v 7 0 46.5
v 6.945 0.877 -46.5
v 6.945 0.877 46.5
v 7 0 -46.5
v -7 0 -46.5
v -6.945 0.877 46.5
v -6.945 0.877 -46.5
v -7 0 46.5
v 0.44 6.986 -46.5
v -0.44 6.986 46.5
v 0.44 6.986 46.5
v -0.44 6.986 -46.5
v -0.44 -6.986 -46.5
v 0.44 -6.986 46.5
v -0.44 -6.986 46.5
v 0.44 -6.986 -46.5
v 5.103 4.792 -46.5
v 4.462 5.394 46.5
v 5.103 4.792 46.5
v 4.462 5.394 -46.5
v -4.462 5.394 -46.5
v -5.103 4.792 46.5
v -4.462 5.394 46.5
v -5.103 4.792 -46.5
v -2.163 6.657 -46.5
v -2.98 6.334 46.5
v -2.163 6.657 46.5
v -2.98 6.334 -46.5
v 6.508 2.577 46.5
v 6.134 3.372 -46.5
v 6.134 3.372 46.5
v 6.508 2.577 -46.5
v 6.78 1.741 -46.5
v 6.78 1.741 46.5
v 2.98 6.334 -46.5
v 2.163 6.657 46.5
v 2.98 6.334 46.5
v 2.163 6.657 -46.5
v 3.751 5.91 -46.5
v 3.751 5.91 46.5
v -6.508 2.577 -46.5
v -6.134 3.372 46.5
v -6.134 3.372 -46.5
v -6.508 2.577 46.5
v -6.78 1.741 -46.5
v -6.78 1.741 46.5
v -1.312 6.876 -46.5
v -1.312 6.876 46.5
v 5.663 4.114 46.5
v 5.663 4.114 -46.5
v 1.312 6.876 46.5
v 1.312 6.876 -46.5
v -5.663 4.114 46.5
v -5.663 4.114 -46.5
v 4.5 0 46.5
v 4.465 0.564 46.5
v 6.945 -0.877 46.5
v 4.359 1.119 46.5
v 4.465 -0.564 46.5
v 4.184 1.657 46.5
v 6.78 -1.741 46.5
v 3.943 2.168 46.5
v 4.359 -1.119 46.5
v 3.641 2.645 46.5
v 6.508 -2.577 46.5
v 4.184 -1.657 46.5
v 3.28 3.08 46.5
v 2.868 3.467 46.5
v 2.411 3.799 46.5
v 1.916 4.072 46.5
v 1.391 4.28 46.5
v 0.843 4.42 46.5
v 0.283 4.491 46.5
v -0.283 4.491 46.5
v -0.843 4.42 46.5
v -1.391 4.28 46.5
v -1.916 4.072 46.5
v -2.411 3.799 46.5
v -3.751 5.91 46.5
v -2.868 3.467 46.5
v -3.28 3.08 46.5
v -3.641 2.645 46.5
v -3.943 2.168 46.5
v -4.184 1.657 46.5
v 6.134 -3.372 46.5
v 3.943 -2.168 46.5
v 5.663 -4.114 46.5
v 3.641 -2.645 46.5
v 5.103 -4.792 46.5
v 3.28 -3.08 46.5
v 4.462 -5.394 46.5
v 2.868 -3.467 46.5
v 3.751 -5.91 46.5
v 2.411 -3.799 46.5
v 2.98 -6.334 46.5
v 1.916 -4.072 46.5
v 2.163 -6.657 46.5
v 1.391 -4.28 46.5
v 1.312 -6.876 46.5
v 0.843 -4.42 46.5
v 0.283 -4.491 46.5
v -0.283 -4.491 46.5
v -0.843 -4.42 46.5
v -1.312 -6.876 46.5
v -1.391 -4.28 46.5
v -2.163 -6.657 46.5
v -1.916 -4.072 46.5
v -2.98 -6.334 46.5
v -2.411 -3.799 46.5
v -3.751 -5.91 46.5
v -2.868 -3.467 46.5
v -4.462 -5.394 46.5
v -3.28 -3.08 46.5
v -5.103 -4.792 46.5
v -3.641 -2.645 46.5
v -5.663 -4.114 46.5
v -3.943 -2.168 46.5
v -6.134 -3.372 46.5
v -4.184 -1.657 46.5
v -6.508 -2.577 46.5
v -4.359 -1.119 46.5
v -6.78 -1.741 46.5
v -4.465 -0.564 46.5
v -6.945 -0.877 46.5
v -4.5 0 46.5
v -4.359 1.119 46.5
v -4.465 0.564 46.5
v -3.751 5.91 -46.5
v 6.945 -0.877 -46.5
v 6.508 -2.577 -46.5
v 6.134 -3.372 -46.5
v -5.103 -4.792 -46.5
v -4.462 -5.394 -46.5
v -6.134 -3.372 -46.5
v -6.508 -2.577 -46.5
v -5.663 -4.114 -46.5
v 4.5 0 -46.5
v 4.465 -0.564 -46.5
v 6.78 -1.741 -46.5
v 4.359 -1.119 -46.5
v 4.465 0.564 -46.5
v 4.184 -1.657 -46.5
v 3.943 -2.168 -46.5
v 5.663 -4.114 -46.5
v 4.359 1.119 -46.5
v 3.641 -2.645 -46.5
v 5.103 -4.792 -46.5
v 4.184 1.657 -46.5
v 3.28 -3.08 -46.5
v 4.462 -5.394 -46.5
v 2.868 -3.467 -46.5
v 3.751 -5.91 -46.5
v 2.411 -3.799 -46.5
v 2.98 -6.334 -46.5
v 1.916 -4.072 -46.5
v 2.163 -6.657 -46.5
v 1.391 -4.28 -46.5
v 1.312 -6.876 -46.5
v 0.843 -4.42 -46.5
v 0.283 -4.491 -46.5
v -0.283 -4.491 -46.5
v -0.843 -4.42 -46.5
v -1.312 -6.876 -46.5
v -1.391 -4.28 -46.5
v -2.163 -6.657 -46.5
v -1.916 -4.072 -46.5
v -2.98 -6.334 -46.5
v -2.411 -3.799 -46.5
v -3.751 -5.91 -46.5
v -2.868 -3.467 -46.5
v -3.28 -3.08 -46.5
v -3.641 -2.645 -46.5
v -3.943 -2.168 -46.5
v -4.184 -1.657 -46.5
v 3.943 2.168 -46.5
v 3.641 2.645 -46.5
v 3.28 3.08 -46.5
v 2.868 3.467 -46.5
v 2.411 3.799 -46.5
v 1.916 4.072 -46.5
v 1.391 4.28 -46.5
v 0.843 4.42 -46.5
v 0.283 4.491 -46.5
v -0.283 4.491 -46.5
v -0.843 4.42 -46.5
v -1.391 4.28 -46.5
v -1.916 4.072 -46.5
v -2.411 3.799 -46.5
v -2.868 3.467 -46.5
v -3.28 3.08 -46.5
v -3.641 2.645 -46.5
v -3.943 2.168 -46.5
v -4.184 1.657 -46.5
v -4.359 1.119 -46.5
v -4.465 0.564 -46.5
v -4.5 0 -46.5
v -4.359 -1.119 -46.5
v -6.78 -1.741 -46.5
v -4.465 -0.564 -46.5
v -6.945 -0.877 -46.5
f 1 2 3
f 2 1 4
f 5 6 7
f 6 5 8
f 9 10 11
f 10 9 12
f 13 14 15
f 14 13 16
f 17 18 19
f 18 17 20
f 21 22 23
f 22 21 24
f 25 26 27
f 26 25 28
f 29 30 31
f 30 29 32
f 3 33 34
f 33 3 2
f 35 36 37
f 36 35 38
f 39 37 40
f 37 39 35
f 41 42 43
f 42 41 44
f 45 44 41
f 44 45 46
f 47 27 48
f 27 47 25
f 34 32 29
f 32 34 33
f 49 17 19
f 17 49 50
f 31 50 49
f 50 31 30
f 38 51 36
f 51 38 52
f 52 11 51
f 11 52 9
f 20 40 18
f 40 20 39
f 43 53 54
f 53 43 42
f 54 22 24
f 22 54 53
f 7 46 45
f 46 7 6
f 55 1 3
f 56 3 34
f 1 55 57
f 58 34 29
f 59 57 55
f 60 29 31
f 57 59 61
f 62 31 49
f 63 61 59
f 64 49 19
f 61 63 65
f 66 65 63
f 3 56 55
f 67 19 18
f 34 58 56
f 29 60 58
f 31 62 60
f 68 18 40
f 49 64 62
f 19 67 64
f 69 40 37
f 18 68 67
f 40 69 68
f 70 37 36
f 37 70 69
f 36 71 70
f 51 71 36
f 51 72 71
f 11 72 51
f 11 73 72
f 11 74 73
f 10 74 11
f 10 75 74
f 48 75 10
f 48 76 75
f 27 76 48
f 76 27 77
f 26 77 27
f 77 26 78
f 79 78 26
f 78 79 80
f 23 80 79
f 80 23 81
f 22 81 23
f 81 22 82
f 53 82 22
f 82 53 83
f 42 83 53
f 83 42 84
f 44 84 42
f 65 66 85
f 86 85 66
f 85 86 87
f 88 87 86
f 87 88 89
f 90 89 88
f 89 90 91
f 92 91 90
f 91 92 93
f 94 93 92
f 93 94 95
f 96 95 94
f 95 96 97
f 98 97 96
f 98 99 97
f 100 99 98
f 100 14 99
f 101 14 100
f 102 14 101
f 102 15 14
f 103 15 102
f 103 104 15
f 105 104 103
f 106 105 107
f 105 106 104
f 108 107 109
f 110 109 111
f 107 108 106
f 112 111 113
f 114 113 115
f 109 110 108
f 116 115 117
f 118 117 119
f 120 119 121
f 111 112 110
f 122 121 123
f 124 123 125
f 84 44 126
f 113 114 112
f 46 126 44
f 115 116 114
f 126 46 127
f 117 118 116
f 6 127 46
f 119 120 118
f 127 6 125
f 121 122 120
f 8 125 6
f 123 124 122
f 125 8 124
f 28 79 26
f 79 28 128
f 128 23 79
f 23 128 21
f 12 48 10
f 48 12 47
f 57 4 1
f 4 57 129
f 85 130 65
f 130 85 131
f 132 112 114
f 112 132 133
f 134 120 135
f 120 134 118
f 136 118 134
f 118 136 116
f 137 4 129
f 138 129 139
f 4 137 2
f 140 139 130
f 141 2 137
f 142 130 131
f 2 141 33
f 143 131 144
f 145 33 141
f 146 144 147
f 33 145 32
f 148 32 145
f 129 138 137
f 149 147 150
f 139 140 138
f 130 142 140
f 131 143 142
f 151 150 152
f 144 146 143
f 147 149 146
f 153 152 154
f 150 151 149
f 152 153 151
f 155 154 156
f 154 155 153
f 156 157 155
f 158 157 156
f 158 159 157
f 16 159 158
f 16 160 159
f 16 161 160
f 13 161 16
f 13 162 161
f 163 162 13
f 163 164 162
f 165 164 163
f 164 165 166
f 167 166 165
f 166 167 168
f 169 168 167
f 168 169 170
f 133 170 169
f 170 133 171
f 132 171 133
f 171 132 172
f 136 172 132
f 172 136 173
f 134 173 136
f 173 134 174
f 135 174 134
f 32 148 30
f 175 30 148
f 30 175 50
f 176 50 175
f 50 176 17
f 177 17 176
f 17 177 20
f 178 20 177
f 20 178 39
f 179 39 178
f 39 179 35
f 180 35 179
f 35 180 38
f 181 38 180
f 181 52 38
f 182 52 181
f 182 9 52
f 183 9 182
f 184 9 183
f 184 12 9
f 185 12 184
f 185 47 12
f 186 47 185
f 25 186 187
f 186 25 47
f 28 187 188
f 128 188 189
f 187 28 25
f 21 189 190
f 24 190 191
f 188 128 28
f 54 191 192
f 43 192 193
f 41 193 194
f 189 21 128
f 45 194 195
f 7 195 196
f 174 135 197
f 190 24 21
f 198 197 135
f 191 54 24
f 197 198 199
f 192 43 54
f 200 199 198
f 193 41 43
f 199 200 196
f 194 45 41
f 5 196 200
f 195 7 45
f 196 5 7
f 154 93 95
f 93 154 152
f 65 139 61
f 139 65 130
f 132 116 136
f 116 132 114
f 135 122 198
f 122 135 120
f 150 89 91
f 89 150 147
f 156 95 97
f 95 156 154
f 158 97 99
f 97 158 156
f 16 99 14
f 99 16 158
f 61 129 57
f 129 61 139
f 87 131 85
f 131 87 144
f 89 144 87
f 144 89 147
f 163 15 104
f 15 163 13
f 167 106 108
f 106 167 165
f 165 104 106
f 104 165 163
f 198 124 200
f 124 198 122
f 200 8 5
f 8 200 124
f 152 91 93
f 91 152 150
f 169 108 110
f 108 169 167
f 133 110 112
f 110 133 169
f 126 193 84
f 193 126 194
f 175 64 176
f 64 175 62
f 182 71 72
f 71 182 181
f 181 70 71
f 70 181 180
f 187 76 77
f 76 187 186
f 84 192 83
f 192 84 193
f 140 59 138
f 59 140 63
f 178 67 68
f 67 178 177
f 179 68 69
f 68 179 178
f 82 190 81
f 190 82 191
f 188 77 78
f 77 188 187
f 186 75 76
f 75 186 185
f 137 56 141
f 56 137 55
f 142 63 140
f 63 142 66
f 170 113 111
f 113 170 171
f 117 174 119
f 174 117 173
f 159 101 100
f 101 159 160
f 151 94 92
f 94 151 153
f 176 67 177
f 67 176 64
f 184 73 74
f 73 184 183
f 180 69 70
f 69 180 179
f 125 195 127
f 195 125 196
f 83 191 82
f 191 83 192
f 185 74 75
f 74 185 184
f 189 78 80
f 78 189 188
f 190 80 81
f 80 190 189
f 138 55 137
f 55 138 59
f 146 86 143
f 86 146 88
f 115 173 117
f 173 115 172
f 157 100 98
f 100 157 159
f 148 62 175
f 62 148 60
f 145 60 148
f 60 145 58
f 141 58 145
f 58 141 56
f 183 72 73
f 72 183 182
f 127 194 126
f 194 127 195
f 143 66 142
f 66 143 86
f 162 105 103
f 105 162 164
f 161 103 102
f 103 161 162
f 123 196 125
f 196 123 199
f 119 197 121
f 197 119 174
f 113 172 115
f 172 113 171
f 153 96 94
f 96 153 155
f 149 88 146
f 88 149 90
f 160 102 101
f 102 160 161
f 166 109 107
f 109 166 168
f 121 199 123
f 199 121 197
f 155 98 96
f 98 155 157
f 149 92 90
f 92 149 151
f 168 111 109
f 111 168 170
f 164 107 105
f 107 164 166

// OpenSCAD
$fn = 50;


difference() {
	union() {
		translate(v = [0, 0, -46.5000000000]) {
			cylinder(h = 93, r = 7.0000000000);
		}
	}
	union() {
		translate(v = [0, 0, -100.0000000000]) {
			cylinder(h = 200, r = 4.5000000000);
		}
	}
}
